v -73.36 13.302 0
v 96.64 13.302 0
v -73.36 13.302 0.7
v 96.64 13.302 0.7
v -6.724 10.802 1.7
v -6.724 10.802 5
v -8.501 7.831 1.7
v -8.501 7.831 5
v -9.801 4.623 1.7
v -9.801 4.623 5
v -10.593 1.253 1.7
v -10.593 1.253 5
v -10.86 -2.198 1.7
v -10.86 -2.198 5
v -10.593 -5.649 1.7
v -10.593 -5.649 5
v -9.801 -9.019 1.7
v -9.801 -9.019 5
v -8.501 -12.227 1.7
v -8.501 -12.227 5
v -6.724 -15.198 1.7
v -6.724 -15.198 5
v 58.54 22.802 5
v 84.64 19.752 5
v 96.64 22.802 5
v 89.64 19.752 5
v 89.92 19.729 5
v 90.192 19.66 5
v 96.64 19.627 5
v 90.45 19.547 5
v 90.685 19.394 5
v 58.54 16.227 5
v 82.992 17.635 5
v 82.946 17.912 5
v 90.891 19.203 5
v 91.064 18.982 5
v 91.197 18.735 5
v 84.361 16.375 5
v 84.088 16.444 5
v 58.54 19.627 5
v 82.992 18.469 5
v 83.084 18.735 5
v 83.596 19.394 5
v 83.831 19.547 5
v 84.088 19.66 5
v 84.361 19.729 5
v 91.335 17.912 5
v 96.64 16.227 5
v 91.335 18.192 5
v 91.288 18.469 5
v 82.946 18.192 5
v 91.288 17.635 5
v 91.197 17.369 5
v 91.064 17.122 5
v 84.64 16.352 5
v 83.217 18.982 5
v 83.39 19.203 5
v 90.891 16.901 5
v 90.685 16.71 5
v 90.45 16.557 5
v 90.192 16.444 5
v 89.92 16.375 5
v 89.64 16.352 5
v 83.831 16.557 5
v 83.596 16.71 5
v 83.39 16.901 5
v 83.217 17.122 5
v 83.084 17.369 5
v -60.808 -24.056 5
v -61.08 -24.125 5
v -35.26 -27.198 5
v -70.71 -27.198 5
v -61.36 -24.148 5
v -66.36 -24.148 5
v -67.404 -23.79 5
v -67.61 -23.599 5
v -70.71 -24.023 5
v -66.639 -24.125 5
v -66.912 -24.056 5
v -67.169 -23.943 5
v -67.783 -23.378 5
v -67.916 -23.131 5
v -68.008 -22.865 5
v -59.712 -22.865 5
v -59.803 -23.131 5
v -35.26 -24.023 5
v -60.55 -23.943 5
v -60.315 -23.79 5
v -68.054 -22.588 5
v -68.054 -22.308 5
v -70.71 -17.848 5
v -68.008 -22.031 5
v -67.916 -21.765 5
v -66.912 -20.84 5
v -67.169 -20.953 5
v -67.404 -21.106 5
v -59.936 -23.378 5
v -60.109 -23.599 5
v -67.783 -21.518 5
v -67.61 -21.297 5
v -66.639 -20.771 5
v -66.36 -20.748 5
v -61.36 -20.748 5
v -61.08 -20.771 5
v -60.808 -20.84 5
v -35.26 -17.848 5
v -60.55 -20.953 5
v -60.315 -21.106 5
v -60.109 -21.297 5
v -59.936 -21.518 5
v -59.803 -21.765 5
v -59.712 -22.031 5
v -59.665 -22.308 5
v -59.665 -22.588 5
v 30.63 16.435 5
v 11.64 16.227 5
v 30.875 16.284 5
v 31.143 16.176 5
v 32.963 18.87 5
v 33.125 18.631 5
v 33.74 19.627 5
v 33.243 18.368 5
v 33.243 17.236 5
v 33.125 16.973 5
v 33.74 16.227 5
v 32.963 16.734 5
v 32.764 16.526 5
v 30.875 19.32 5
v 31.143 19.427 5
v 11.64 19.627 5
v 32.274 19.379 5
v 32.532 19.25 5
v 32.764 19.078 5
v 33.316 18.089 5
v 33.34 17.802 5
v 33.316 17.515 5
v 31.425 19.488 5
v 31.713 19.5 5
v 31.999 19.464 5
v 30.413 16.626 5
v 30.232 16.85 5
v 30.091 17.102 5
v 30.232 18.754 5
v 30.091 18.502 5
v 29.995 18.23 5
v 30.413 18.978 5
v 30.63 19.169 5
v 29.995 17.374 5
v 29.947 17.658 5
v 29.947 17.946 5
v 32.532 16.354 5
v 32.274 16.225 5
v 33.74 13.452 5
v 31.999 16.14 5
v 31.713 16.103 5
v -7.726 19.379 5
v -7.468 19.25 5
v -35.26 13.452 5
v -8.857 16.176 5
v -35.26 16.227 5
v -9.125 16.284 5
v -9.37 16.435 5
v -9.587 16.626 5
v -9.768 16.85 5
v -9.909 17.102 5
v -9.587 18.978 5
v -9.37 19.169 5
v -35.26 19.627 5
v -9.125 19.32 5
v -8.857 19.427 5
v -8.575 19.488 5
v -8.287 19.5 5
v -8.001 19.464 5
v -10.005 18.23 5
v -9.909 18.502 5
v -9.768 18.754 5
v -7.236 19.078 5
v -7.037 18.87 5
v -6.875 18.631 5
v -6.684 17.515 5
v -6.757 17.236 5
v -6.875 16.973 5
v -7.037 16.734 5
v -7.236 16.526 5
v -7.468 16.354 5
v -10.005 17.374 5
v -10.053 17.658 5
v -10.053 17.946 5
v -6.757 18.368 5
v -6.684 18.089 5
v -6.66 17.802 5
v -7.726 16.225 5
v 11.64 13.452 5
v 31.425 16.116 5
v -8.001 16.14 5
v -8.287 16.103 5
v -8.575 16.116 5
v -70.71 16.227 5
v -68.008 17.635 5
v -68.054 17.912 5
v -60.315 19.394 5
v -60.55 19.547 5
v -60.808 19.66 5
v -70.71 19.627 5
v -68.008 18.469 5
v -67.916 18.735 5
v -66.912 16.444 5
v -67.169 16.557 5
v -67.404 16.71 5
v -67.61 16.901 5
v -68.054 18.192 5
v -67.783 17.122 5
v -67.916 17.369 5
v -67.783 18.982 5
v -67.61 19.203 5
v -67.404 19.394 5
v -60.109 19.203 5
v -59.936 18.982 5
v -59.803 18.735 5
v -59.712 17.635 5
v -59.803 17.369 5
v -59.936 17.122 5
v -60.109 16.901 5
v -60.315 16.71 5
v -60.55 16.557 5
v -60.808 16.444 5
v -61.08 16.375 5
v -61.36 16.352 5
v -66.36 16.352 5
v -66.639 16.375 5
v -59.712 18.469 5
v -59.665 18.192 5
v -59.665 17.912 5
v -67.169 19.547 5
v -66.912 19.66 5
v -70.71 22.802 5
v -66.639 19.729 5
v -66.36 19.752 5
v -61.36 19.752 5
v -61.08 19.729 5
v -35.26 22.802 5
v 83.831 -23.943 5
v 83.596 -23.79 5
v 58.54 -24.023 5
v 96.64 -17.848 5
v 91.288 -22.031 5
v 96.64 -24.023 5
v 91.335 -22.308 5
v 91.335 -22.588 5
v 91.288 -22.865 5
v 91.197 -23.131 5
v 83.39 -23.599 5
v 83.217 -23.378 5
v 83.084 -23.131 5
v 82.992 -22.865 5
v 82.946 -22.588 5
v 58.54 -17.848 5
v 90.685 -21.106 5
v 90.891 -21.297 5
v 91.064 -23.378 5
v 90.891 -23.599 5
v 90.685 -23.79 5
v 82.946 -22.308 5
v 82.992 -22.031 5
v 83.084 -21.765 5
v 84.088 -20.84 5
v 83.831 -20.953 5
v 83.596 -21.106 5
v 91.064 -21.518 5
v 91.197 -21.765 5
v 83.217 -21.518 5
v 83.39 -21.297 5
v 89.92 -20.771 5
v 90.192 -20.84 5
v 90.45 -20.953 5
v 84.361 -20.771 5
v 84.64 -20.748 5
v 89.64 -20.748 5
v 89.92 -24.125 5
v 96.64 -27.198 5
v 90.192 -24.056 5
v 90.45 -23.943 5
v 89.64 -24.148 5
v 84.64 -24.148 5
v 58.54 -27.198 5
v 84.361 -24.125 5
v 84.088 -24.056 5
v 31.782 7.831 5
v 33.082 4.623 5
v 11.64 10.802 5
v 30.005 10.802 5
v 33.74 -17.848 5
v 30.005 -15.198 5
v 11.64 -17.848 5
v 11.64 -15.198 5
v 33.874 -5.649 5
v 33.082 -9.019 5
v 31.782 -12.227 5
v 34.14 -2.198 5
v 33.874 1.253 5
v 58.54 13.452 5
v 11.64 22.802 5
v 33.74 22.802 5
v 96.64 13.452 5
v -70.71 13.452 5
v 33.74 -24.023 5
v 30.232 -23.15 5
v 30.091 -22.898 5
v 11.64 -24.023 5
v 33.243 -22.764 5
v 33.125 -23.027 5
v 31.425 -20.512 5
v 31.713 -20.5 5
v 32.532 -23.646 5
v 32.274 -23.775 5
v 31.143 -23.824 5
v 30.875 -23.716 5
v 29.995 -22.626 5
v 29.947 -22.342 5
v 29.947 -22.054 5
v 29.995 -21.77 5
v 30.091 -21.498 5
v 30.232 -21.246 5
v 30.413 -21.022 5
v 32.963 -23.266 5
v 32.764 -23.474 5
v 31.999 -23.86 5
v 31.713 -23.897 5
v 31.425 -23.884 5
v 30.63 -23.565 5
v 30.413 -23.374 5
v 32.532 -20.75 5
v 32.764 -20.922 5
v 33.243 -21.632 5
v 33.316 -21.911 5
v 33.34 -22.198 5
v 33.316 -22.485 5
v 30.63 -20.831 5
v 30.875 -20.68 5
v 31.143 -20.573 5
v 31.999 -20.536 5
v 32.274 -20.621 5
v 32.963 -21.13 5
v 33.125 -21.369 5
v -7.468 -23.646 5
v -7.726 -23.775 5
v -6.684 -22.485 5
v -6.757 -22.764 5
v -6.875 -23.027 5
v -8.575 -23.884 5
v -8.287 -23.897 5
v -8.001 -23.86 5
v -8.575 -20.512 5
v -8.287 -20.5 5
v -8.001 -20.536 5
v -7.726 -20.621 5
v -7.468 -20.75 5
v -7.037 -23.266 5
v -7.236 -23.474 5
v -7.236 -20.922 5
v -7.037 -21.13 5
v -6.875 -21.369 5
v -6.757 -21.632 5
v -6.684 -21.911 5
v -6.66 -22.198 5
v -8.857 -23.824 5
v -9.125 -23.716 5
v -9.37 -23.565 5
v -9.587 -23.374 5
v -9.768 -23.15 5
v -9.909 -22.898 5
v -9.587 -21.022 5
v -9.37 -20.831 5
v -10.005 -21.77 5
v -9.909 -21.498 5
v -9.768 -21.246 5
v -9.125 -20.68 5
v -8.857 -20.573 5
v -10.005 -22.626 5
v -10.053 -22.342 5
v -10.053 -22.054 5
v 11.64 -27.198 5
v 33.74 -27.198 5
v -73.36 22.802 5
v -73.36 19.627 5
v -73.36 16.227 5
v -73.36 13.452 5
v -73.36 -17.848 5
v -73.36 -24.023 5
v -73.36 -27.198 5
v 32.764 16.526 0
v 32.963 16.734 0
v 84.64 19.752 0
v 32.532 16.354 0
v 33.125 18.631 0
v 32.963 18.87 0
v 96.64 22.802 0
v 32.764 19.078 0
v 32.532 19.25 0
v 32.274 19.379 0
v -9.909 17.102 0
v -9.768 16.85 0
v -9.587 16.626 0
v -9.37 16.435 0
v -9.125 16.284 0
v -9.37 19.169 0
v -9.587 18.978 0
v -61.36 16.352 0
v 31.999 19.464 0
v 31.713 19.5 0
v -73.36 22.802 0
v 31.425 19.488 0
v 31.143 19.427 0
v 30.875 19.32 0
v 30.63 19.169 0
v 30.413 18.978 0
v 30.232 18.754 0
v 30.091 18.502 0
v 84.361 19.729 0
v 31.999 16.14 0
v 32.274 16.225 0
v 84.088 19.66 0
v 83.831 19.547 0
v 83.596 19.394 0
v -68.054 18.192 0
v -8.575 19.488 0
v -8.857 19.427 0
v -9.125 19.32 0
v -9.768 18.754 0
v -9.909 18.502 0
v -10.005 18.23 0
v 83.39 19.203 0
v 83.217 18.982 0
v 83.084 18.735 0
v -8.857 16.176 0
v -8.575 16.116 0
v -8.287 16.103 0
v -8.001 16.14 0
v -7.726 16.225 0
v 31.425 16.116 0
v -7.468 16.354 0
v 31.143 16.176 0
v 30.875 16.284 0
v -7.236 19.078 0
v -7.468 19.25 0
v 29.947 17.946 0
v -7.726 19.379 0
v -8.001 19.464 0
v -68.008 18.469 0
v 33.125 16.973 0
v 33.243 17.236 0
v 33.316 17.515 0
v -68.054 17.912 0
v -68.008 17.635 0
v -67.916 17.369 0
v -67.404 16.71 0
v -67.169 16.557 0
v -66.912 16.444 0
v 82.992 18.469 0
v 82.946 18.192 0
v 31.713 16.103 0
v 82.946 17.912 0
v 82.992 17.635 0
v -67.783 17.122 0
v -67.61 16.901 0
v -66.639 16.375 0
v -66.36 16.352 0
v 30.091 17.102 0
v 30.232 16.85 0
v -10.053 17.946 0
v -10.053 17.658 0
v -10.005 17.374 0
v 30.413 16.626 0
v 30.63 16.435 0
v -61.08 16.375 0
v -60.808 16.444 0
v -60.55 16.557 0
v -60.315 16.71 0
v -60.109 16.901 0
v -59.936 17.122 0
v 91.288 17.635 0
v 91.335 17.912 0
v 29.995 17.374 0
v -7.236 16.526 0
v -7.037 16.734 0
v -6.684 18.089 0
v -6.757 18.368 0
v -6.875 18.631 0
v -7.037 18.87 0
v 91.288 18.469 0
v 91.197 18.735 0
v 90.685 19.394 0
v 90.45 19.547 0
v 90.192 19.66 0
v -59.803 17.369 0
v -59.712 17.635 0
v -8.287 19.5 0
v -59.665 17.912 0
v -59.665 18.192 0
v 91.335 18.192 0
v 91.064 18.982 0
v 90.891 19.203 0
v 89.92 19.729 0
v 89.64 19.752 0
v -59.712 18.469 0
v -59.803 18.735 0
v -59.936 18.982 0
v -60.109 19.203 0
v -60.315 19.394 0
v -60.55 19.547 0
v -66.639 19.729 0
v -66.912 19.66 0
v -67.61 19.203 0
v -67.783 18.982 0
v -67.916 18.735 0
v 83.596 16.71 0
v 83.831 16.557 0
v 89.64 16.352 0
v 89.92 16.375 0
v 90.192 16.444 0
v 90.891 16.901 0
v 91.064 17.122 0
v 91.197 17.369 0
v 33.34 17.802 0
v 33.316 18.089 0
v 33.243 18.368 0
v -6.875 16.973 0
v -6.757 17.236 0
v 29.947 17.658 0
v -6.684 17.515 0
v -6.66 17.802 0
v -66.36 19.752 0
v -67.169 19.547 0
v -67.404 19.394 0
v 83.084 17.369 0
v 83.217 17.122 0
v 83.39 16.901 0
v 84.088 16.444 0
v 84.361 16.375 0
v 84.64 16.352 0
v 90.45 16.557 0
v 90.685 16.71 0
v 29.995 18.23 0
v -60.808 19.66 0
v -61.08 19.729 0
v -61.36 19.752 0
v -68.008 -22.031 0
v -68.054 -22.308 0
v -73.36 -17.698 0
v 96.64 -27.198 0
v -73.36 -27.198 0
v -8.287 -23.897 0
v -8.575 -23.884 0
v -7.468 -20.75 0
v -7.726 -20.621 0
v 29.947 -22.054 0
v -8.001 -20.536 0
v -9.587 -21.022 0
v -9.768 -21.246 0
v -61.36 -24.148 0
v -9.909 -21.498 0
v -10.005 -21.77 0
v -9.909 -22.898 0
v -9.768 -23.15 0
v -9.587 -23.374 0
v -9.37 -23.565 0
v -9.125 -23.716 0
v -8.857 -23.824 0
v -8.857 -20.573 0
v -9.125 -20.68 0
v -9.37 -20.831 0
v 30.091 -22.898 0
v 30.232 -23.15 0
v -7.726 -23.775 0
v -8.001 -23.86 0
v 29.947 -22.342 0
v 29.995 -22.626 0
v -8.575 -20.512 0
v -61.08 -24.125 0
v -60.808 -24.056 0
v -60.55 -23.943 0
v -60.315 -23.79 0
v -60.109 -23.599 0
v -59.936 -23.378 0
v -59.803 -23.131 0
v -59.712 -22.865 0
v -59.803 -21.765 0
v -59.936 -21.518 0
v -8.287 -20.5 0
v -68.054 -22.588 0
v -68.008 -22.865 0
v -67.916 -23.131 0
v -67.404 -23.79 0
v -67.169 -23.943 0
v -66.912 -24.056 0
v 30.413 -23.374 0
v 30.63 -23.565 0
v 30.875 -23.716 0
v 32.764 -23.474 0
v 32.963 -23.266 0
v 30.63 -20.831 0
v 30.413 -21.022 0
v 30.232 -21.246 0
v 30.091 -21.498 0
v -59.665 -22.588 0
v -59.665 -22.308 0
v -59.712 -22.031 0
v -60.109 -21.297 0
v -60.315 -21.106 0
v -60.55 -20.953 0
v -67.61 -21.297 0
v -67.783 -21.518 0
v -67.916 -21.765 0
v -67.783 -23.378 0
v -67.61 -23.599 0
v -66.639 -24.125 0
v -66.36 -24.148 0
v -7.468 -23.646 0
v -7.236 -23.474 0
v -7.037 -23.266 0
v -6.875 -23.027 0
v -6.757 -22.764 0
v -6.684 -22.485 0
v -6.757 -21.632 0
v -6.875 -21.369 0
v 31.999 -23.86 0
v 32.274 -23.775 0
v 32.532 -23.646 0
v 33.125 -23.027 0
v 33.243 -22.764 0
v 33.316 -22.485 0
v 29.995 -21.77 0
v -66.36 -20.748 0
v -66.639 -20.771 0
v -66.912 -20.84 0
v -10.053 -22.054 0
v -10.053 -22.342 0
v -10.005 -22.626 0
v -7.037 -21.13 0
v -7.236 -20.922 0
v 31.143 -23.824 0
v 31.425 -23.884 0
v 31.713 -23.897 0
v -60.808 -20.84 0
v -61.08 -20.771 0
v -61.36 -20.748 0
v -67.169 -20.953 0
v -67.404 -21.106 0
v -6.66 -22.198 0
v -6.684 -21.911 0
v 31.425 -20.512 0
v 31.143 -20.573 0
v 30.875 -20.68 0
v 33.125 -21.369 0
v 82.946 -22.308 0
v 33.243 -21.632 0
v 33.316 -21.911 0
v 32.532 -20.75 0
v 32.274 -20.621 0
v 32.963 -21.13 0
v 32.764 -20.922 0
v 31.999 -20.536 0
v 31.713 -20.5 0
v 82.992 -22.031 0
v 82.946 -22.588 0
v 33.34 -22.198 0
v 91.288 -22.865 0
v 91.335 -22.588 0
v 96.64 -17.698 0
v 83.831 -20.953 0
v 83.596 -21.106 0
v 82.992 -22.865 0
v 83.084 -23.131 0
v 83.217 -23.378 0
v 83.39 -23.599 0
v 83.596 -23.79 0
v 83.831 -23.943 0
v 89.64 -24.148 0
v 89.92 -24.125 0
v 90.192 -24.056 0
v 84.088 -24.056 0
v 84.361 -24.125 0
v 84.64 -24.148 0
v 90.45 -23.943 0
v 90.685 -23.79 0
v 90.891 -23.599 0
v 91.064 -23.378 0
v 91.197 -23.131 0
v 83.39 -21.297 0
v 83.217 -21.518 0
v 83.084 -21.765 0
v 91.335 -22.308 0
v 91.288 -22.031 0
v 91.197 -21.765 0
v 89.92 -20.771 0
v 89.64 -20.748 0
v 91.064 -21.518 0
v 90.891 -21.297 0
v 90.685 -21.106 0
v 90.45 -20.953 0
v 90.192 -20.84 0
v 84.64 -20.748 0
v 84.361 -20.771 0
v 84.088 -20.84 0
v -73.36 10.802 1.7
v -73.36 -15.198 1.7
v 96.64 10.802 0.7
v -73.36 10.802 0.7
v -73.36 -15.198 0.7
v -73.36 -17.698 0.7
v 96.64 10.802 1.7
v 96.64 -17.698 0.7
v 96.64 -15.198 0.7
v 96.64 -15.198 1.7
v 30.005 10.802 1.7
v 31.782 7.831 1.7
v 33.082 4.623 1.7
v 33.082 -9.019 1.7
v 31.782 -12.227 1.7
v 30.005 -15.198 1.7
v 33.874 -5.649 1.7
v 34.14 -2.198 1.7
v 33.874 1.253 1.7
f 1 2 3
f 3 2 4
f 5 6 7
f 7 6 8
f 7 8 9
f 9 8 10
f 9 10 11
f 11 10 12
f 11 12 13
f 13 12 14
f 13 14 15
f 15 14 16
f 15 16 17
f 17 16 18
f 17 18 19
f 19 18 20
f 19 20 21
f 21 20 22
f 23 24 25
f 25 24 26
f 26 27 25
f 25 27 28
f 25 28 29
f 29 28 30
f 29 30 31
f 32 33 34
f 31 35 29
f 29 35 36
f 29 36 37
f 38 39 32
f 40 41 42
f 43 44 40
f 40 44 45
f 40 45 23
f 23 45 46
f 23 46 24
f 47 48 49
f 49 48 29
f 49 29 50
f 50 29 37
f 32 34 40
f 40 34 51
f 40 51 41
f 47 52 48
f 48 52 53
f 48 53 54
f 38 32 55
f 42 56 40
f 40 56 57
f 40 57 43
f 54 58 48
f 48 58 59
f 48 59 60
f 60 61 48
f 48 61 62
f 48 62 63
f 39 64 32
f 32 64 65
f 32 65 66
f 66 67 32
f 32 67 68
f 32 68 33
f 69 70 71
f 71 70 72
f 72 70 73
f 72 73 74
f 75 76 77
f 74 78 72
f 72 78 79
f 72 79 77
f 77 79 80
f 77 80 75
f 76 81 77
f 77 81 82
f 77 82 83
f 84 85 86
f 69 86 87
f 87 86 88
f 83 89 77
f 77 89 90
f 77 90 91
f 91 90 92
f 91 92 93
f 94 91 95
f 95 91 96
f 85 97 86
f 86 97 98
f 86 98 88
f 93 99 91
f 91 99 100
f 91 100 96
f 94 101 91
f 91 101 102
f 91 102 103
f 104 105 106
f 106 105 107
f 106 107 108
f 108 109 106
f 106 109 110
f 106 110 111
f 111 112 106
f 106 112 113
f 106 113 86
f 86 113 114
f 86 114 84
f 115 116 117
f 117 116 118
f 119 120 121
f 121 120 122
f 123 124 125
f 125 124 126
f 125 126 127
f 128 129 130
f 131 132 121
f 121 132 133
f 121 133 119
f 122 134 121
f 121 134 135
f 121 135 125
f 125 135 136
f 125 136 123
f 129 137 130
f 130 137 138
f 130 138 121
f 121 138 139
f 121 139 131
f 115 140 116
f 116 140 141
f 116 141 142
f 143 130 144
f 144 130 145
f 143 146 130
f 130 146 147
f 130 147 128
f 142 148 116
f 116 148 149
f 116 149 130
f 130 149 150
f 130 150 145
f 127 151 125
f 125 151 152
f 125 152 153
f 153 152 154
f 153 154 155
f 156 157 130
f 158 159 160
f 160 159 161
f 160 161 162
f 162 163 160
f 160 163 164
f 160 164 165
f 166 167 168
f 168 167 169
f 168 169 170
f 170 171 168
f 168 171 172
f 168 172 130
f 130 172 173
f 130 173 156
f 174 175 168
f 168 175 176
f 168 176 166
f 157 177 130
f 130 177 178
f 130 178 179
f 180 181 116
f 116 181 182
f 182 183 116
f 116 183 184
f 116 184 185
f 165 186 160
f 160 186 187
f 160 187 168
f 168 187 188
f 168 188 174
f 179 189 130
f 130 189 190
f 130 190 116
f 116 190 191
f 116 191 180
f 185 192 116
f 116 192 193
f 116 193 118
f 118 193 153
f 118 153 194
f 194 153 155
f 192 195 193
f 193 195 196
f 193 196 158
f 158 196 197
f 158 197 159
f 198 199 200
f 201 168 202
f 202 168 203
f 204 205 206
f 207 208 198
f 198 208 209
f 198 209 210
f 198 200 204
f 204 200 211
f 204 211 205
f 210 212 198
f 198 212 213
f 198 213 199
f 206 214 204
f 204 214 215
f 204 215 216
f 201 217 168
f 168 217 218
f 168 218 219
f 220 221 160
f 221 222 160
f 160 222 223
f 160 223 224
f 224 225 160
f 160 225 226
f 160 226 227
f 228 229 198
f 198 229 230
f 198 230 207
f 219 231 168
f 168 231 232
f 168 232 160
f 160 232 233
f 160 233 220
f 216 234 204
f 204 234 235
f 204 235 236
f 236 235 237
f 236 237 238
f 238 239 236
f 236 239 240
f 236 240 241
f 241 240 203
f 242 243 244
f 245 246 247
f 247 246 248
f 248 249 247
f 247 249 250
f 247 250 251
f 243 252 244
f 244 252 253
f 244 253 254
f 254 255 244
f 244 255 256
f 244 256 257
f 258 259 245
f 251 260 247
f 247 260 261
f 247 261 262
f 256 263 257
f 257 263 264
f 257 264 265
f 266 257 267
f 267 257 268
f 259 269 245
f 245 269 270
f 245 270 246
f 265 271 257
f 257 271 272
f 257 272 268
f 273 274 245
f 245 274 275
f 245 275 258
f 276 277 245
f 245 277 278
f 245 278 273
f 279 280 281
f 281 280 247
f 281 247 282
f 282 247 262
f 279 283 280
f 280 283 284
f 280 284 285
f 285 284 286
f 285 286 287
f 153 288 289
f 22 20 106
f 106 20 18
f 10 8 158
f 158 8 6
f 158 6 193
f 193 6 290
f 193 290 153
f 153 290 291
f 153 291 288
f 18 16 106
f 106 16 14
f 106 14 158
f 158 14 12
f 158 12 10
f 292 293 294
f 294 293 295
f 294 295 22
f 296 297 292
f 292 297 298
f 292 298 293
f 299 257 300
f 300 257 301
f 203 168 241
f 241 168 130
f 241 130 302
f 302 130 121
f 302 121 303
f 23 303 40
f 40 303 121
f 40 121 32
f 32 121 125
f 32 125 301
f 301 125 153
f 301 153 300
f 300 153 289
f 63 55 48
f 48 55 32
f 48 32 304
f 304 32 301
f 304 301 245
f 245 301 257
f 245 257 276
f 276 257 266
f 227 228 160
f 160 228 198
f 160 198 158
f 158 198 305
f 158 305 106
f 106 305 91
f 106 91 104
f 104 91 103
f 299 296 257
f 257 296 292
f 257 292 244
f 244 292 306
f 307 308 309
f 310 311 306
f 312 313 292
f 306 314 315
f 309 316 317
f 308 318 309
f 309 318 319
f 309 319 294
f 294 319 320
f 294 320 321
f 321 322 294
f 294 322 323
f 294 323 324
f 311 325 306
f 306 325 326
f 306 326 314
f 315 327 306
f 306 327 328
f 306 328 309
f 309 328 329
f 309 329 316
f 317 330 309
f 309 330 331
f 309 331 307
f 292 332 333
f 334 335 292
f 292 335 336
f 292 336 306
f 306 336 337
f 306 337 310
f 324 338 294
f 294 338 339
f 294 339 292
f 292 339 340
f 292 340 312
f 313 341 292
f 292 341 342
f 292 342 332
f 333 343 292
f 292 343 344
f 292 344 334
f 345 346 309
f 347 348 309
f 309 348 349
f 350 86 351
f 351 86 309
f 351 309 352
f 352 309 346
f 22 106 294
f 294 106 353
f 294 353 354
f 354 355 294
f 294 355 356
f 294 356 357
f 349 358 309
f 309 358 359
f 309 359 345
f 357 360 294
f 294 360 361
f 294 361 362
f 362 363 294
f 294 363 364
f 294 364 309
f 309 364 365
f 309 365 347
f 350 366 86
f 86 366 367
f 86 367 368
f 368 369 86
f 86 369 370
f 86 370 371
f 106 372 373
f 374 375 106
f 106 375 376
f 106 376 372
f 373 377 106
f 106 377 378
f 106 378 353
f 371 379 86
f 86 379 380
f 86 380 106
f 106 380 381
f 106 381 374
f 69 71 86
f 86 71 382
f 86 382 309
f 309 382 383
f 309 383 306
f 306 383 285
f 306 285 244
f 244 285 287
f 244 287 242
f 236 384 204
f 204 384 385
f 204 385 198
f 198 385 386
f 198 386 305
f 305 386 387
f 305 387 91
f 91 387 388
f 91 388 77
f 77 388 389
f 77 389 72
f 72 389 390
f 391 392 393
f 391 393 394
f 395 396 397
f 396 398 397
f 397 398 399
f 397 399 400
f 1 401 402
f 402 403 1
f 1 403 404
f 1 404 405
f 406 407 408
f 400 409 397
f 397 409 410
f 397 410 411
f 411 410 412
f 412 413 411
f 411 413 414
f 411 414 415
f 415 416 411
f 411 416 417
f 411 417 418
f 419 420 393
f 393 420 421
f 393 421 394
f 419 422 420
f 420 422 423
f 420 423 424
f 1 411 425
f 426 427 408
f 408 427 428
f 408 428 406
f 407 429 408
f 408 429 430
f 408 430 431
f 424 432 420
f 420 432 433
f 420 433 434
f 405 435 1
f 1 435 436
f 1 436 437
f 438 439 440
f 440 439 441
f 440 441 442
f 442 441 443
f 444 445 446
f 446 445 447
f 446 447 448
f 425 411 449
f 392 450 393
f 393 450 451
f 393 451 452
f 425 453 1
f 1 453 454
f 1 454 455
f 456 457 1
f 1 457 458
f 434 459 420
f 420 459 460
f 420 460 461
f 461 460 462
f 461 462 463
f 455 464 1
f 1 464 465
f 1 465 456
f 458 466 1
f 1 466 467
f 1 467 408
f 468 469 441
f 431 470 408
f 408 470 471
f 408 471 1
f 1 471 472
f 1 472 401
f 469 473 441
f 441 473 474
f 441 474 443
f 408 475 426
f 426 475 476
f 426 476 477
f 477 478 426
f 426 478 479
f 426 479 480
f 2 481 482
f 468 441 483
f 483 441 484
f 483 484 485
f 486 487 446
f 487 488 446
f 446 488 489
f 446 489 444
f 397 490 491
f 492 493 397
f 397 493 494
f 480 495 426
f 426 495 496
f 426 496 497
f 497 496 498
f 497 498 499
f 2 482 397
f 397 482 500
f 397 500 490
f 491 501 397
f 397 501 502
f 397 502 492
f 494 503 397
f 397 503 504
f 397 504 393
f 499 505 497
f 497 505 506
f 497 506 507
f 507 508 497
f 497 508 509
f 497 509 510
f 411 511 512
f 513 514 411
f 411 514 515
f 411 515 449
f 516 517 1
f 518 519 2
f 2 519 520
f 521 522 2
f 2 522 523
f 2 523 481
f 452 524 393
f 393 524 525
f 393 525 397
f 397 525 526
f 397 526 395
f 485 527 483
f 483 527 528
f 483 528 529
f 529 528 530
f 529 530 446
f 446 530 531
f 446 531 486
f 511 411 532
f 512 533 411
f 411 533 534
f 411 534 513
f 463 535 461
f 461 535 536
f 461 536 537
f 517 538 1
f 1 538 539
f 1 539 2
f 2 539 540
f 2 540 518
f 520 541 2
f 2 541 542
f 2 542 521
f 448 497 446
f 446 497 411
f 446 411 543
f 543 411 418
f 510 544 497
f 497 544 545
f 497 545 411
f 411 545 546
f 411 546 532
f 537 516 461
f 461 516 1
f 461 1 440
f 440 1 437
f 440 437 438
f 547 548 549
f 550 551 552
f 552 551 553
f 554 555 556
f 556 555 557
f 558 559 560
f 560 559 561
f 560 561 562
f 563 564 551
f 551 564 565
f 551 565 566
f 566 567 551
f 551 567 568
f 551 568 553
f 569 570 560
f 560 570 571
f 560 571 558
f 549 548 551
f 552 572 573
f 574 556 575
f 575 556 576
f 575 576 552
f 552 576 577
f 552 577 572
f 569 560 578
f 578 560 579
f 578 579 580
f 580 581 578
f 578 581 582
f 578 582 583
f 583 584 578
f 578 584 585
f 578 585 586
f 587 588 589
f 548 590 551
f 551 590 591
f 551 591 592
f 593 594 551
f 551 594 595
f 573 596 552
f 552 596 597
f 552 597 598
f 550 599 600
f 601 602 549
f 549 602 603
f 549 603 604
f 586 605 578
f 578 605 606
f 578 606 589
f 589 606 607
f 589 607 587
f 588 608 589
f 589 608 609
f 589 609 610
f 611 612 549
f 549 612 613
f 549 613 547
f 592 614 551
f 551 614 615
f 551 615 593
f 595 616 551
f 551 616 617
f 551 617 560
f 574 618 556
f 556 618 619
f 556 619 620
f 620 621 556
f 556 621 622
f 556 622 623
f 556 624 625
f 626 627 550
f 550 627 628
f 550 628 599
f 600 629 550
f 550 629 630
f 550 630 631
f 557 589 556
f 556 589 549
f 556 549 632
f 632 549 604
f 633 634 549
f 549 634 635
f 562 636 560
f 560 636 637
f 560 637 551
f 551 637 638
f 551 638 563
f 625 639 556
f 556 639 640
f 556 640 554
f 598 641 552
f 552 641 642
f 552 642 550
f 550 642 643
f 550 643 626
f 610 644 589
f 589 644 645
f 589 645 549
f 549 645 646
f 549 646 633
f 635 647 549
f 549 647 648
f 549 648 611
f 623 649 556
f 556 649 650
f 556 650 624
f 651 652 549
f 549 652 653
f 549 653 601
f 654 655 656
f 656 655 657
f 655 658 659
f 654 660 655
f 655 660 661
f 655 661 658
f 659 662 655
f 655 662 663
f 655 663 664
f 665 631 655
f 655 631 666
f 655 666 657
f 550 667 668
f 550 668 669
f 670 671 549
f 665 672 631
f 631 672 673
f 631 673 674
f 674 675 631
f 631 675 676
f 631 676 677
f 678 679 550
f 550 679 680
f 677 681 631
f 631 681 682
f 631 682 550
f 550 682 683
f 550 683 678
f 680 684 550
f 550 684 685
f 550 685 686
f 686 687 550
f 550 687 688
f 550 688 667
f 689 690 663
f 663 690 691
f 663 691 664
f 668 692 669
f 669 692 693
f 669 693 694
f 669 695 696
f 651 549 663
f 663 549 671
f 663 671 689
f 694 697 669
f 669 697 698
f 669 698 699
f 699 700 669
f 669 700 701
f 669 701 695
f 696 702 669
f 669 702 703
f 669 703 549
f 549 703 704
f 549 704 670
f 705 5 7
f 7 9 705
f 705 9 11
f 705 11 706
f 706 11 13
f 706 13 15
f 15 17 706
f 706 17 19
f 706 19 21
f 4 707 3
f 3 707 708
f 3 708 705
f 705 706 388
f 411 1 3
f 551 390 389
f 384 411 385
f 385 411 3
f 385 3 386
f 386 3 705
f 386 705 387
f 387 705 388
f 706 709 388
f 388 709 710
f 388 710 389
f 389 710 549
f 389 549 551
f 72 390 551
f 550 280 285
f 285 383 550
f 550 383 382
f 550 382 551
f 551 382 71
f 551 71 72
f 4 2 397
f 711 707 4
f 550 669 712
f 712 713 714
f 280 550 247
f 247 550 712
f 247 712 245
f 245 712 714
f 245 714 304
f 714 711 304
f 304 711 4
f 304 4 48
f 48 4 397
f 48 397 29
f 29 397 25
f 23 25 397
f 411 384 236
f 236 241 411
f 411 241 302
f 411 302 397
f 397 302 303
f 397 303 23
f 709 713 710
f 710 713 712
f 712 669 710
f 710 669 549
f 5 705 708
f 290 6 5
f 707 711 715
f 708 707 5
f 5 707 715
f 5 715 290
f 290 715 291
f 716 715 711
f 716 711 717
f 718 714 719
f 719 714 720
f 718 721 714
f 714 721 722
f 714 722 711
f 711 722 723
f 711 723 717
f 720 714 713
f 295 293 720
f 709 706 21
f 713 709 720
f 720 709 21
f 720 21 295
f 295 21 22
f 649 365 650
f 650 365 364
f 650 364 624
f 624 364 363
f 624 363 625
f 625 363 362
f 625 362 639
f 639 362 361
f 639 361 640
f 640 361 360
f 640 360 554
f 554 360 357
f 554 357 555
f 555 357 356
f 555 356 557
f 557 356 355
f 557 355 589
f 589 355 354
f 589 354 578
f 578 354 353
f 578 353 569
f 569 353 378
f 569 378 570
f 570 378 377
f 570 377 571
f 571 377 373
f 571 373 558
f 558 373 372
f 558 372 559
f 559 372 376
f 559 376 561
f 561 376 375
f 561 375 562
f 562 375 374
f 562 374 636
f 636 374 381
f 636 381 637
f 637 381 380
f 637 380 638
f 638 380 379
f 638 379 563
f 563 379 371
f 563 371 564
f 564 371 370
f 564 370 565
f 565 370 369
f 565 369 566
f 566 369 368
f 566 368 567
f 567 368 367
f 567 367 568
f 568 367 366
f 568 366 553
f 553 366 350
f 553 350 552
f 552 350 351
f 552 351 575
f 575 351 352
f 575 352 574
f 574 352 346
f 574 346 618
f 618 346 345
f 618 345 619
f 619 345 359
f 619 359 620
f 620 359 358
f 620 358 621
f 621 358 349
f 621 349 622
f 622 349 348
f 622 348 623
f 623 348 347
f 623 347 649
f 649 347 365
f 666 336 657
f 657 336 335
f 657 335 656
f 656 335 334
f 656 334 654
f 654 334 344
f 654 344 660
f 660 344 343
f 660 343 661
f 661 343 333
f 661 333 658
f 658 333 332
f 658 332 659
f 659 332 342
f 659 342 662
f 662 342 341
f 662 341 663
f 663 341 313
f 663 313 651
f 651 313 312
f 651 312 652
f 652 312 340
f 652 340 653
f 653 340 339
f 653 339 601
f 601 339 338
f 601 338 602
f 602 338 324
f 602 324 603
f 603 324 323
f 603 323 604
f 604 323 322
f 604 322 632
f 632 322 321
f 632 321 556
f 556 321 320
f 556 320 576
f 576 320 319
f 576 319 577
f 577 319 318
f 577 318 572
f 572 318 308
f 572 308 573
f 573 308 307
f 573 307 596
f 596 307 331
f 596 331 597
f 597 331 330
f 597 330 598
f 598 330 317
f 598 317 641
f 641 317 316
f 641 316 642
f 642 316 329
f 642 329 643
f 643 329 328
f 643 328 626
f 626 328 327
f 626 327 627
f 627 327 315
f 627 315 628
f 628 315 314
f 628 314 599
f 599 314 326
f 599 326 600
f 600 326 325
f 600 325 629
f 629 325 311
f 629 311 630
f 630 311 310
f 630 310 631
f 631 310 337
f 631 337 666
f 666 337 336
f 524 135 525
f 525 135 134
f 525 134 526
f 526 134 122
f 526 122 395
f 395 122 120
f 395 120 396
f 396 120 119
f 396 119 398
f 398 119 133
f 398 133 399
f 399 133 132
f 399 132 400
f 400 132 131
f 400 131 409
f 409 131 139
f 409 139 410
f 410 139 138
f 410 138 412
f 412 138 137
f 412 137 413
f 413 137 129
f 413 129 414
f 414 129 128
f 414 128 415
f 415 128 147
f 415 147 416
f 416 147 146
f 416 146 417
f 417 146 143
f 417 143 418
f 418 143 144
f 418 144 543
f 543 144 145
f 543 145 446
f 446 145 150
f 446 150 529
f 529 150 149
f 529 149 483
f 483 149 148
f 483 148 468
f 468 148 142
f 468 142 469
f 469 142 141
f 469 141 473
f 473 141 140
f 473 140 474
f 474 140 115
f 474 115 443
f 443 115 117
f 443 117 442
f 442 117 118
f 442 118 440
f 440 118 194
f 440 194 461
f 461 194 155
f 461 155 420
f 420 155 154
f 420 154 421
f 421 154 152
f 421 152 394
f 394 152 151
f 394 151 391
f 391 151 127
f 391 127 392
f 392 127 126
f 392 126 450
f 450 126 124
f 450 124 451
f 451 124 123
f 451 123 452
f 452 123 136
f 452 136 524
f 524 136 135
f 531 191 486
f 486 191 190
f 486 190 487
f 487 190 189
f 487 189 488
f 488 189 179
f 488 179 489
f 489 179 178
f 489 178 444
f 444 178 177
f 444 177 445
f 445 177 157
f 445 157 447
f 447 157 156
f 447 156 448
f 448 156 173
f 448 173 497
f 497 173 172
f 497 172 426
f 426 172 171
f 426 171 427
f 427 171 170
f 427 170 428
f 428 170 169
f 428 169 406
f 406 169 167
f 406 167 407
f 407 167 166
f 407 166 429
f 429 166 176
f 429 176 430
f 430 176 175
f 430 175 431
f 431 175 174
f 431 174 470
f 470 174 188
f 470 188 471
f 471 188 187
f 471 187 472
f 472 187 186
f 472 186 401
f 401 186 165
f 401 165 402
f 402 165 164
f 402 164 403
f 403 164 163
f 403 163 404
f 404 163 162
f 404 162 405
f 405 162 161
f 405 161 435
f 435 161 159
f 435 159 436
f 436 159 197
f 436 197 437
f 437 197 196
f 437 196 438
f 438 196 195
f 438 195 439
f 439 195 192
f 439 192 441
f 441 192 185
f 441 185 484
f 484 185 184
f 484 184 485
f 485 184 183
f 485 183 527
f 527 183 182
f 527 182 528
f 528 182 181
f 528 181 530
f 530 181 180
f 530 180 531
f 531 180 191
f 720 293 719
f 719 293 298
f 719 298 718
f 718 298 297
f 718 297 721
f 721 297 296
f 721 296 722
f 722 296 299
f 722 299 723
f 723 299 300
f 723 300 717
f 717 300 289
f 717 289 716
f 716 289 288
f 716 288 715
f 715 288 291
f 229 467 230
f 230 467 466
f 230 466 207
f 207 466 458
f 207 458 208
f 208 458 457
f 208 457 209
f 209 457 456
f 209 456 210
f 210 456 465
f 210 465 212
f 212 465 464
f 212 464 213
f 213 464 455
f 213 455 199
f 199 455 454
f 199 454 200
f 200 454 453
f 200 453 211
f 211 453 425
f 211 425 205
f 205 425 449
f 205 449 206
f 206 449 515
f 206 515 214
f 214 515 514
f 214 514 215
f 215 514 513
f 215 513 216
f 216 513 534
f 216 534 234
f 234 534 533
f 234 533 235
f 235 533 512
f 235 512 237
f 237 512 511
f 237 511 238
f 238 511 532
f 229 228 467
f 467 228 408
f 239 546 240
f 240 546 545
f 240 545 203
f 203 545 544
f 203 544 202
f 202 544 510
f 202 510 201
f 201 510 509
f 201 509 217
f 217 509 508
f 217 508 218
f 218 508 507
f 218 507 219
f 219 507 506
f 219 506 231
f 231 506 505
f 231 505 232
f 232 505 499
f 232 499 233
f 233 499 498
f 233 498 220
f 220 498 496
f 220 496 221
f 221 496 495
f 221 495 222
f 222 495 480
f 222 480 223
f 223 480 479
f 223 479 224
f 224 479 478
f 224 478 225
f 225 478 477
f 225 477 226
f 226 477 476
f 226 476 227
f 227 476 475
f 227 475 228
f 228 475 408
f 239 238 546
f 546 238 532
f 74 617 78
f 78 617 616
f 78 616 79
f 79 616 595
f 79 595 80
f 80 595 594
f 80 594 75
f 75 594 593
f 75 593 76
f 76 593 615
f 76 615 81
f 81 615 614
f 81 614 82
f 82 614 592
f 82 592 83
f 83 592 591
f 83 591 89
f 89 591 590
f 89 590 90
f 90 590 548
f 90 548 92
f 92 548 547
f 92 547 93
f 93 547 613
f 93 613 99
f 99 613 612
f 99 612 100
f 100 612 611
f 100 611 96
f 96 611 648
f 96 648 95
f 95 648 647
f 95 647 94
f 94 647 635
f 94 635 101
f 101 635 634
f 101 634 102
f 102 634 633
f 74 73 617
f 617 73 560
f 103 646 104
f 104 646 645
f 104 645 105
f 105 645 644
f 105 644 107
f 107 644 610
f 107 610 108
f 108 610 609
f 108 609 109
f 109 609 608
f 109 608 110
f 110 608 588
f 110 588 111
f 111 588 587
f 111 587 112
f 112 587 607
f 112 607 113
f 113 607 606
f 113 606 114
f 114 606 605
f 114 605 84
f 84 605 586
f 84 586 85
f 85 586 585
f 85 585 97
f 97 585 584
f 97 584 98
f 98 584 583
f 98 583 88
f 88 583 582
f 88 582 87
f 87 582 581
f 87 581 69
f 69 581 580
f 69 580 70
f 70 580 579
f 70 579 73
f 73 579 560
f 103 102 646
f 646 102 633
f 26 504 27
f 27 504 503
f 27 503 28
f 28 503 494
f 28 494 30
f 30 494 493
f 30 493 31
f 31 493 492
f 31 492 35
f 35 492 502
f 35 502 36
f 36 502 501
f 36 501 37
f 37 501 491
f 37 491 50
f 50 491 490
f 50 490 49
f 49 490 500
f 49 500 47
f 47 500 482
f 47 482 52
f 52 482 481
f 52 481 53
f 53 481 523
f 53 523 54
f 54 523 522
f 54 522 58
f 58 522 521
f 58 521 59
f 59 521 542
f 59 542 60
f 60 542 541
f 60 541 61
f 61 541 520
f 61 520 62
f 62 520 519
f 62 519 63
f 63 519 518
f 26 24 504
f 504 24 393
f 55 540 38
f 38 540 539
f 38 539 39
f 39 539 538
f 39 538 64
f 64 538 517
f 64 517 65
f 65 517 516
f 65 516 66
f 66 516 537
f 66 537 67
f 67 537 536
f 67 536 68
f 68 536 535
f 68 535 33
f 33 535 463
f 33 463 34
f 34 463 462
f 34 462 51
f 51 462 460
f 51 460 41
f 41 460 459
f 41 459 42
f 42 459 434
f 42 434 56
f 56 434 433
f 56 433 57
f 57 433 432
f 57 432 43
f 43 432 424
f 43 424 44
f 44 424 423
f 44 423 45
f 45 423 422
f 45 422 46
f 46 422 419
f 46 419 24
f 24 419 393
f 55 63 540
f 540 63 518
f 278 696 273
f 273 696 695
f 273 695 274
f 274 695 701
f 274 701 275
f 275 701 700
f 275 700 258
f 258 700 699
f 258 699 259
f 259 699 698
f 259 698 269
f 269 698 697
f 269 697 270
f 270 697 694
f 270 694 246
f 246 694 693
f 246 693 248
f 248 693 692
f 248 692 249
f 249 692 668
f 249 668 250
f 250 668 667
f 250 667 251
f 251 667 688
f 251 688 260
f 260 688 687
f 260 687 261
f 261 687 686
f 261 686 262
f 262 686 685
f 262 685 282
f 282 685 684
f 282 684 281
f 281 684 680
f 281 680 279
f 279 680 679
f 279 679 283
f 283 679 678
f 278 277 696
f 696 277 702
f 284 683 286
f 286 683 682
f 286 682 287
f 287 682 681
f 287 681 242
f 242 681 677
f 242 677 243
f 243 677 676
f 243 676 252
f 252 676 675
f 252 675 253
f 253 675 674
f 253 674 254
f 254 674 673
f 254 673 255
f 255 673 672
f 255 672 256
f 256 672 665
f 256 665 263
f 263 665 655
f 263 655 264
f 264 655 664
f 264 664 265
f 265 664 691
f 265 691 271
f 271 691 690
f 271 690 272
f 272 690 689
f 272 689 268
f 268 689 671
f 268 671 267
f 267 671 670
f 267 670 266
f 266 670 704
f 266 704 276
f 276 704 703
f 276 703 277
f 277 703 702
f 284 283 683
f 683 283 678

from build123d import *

# Parameters (mm, degrees)
SZKIC1_W                    = 170
SZKIC1_H                    = 50
DODANIE_WYCI_GNI_CIE1_DEPTH = 5
SZKIC2_W                    = 0.7
SZKIC2_H                    = 31
WYTNIJ_WYCI_GNI_CIE1_DEPTH  = 173.234529168
SZKIC3_W                    = 1
SZKIC3_H                    = 26
WYTNIJ_WYCI_GNI_CIE2_DEPTH  = 173.234529168
SZKIC4_R                    = 1.7
WYTNIJ_WYCI_GNI_CIE3_DEPTH  = 101.51922361
SZKIC5_R                    = 22.5
WYTNIJ_WYCI_GNI_CIE4_DEPTH  = 10
WYTNIJ_WYCI_GNI_CIE5_DEPTH  = 101.51922361
LUSTRO2_COPY_1_DEPTH        = 101.51922361
SZKIC7_W                    = 32.832404509
SZKIC7_H                    = 9.5
DODANIE_WYCI_GNI_CIE2_DEPTH = 5
SZKIC8_W                    = 34.236470266
SZKIC8_H                    = 9.5
DODANIE_WYCI_GNI_CIE3_DEPTH = 5
SZKIC9_W                    = 39.464340028
SZKIC9_H                    = 2.5
DODANIE_WYCI_GNI_CIE4_DEPTH = 4.3
SZKIC10_W                   = 39.512976603
SZKIC10_H                   = 2.5
DODANIE_WYCI_GNI_CIE5_DEPTH = 4.3


with BuildPart() as part:
    # Szkic1 → Dodanie-wyciągnięcie1 (new body)
    with BuildSketch(Plane.XY):
        with Locations((11.640474324, -2.198033708)):
            Rectangle(SZKIC1_W, SZKIC1_H)
    extrude(amount=DODANIE_WYCI_GNI_CIE1_DEPTH)

    # Szkic2 → Wytnij-wyciągnięcie1 (cut, through all)
    with BuildSketch(Plane.ZY.offset(73.359525676)):
        with Locations((0.35, -2.198033708)):
            Rectangle(SZKIC2_W, SZKIC2_H)
    extrude(amount=-WYTNIJ_WYCI_GNI_CIE1_DEPTH, mode=Mode.SUBTRACT)

    # Szkic3 → Wytnij-wyciągnięcie2 (cut, through all)
    with BuildSketch(Plane.ZY.offset(73.359525676)):
        with Locations((1.2, -2.198033708)):
            Rectangle(SZKIC3_W, SZKIC3_H)
    extrude(amount=-WYTNIJ_WYCI_GNI_CIE2_DEPTH, mode=Mode.SUBTRACT)

    # Szkic4 → Wytnij-wyciągnięcie3 (cut, through all)
    with BuildSketch(Plane.XY.offset(5)):
        with Locations((-8.359525676, -22.198033708)):
            Circle(SZKIC4_R)
        with Locations((31.640474324, -22.198033708)):
            Circle(SZKIC4_R)
        with Locations((31.640474324, 17.801966292)):
            Circle(SZKIC4_R)
        with Locations((-8.359525676, 17.801966292)):
            Circle(SZKIC4_R)
    extrude(amount=-WYTNIJ_WYCI_GNI_CIE3_DEPTH, mode=Mode.SUBTRACT)

    # Szkic5 → Wytnij-wyciągnięcie4 (cut)
    with BuildSketch(Plane.XY.offset(5)):
        with Locations((11.640474324, -2.198033708)):
            Circle(SZKIC5_R)
    extrude(amount=-WYTNIJ_WYCI_GNI_CIE4_DEPTH, mode=Mode.SUBTRACT)

    # Szkic6 → Wytnij-wyciągnięcie5 (cut, through all)
    with BuildSketch(Plane(origin=(0, 0, 0), x_dir=(-1, 0, 0), z_dir=(0, 0, -1))):
        with BuildLine():
            Line((66.359525676, 19.751966292), (61.359525676, 19.751966292))
            ThreePointArc((61.359525676, 19.751966292), (59.659525676, 18.051966292), (61.359525676, 16.351966292))
            Line((61.359525676, 16.351966292), (66.359525676, 16.351966292))
            ThreePointArc((66.359525676, 16.351966292), (68.059525676, 18.051966292), (66.359525676, 19.751966292))
        make_face()
    wytnij_wyci_gni_cie5 = extrude(amount=-WYTNIJ_WYCI_GNI_CIE5_DEPTH, mode=Mode.SUBTRACT)

    # Lustro1: Wytnij-wyciągnięcie5 across plane
    add(wytnij_wyci_gni_cie5.mirror(Plane(origin=(0, -2.198033708, 0), x_dir=(0, 0, 1), z_dir=(0, -1, 0))), mode=Mode.SUBTRACT)

    # Lustro2: Wytnij-wyciągnięcie5 across plane
    add(wytnij_wyci_gni_cie5.mirror(Plane(origin=(11.640474324, 0, 0), x_dir=(0, 0, 1), z_dir=(1, 0, 0))), mode=Mode.SUBTRACT)

    # Lustro2 copy 1 sketch → Lustro2 copy 1 (cut, through all)
    with BuildSketch(Plane(origin=(23.280948648, -4.396067416, 0), x_dir=(1, 0, 0), z_dir=(0, 0, -1))):
        with BuildLine():
            Line((66.359525676, 19.751966292), (61.359525676, 19.751966292))
            ThreePointArc((61.359525676, 19.751966292), (59.659525676, 18.051966292), (61.359525676, 16.351966292))
            Line((61.359525676, 16.351966292), (66.359525676, 16.351966292))
            ThreePointArc((66.359525676, 16.351966292), (68.059525676, 18.051966292), (66.359525676, 19.751966292))
        make_face()
    extrude(amount=-LUSTRO2_COPY_1_DEPTH, mode=Mode.SUBTRACT)

    # Szkic7 → Dodanie-wyciągnięcie2 (add, through all)
    with BuildSketch(Plane(origin=(0, 0, 0), x_dir=(-1, 0, 0), z_dir=(0, 0, -1))):
        with Locations((-11.5337785, 18.051966292)):
            Rectangle(SZKIC7_W, SZKIC7_H)
    extrude(amount=-DODANIE_WYCI_GNI_CIE2_DEPTH)

    # Szkic8 → Dodanie-wyciągnięcie3 (add, through all)
    with BuildSketch(Plane(origin=(0, 0, 0), x_dir=(-1, 0, 0), z_dir=(0, 0, -1))):
        with Locations((-10.831745621, -22.448033708)):
            Rectangle(SZKIC8_W, SZKIC8_H)
    extrude(amount=-DODANIE_WYCI_GNI_CIE3_DEPTH)

    # Szkic9 → Dodanie-wyciągnięcie4 (add, through all)
    with BuildSketch(Plane(origin=(0, 0, 0.7), x_dir=(-1, 0, 0), z_dir=(0, 0, -1))):
        with Locations((-10.272671982, 12.051966292)):
            Rectangle(SZKIC9_W, SZKIC9_H)
    extrude(amount=-DODANIE_WYCI_GNI_CIE4_DEPTH)

    # Szkic10 → Dodanie-wyciągnięcie5 (add, through all)
    with BuildSketch(Plane(origin=(0, 0, 0.7), x_dir=(-1, 0, 0), z_dir=(0, 0, -1))):
        with Locations((-10.248353695, -16.448033708)):
            Rectangle(SZKIC10_W, SZKIC10_H)
    extrude(amount=-DODANIE_WYCI_GNI_CIE5_DEPTH)


solid = part.part
